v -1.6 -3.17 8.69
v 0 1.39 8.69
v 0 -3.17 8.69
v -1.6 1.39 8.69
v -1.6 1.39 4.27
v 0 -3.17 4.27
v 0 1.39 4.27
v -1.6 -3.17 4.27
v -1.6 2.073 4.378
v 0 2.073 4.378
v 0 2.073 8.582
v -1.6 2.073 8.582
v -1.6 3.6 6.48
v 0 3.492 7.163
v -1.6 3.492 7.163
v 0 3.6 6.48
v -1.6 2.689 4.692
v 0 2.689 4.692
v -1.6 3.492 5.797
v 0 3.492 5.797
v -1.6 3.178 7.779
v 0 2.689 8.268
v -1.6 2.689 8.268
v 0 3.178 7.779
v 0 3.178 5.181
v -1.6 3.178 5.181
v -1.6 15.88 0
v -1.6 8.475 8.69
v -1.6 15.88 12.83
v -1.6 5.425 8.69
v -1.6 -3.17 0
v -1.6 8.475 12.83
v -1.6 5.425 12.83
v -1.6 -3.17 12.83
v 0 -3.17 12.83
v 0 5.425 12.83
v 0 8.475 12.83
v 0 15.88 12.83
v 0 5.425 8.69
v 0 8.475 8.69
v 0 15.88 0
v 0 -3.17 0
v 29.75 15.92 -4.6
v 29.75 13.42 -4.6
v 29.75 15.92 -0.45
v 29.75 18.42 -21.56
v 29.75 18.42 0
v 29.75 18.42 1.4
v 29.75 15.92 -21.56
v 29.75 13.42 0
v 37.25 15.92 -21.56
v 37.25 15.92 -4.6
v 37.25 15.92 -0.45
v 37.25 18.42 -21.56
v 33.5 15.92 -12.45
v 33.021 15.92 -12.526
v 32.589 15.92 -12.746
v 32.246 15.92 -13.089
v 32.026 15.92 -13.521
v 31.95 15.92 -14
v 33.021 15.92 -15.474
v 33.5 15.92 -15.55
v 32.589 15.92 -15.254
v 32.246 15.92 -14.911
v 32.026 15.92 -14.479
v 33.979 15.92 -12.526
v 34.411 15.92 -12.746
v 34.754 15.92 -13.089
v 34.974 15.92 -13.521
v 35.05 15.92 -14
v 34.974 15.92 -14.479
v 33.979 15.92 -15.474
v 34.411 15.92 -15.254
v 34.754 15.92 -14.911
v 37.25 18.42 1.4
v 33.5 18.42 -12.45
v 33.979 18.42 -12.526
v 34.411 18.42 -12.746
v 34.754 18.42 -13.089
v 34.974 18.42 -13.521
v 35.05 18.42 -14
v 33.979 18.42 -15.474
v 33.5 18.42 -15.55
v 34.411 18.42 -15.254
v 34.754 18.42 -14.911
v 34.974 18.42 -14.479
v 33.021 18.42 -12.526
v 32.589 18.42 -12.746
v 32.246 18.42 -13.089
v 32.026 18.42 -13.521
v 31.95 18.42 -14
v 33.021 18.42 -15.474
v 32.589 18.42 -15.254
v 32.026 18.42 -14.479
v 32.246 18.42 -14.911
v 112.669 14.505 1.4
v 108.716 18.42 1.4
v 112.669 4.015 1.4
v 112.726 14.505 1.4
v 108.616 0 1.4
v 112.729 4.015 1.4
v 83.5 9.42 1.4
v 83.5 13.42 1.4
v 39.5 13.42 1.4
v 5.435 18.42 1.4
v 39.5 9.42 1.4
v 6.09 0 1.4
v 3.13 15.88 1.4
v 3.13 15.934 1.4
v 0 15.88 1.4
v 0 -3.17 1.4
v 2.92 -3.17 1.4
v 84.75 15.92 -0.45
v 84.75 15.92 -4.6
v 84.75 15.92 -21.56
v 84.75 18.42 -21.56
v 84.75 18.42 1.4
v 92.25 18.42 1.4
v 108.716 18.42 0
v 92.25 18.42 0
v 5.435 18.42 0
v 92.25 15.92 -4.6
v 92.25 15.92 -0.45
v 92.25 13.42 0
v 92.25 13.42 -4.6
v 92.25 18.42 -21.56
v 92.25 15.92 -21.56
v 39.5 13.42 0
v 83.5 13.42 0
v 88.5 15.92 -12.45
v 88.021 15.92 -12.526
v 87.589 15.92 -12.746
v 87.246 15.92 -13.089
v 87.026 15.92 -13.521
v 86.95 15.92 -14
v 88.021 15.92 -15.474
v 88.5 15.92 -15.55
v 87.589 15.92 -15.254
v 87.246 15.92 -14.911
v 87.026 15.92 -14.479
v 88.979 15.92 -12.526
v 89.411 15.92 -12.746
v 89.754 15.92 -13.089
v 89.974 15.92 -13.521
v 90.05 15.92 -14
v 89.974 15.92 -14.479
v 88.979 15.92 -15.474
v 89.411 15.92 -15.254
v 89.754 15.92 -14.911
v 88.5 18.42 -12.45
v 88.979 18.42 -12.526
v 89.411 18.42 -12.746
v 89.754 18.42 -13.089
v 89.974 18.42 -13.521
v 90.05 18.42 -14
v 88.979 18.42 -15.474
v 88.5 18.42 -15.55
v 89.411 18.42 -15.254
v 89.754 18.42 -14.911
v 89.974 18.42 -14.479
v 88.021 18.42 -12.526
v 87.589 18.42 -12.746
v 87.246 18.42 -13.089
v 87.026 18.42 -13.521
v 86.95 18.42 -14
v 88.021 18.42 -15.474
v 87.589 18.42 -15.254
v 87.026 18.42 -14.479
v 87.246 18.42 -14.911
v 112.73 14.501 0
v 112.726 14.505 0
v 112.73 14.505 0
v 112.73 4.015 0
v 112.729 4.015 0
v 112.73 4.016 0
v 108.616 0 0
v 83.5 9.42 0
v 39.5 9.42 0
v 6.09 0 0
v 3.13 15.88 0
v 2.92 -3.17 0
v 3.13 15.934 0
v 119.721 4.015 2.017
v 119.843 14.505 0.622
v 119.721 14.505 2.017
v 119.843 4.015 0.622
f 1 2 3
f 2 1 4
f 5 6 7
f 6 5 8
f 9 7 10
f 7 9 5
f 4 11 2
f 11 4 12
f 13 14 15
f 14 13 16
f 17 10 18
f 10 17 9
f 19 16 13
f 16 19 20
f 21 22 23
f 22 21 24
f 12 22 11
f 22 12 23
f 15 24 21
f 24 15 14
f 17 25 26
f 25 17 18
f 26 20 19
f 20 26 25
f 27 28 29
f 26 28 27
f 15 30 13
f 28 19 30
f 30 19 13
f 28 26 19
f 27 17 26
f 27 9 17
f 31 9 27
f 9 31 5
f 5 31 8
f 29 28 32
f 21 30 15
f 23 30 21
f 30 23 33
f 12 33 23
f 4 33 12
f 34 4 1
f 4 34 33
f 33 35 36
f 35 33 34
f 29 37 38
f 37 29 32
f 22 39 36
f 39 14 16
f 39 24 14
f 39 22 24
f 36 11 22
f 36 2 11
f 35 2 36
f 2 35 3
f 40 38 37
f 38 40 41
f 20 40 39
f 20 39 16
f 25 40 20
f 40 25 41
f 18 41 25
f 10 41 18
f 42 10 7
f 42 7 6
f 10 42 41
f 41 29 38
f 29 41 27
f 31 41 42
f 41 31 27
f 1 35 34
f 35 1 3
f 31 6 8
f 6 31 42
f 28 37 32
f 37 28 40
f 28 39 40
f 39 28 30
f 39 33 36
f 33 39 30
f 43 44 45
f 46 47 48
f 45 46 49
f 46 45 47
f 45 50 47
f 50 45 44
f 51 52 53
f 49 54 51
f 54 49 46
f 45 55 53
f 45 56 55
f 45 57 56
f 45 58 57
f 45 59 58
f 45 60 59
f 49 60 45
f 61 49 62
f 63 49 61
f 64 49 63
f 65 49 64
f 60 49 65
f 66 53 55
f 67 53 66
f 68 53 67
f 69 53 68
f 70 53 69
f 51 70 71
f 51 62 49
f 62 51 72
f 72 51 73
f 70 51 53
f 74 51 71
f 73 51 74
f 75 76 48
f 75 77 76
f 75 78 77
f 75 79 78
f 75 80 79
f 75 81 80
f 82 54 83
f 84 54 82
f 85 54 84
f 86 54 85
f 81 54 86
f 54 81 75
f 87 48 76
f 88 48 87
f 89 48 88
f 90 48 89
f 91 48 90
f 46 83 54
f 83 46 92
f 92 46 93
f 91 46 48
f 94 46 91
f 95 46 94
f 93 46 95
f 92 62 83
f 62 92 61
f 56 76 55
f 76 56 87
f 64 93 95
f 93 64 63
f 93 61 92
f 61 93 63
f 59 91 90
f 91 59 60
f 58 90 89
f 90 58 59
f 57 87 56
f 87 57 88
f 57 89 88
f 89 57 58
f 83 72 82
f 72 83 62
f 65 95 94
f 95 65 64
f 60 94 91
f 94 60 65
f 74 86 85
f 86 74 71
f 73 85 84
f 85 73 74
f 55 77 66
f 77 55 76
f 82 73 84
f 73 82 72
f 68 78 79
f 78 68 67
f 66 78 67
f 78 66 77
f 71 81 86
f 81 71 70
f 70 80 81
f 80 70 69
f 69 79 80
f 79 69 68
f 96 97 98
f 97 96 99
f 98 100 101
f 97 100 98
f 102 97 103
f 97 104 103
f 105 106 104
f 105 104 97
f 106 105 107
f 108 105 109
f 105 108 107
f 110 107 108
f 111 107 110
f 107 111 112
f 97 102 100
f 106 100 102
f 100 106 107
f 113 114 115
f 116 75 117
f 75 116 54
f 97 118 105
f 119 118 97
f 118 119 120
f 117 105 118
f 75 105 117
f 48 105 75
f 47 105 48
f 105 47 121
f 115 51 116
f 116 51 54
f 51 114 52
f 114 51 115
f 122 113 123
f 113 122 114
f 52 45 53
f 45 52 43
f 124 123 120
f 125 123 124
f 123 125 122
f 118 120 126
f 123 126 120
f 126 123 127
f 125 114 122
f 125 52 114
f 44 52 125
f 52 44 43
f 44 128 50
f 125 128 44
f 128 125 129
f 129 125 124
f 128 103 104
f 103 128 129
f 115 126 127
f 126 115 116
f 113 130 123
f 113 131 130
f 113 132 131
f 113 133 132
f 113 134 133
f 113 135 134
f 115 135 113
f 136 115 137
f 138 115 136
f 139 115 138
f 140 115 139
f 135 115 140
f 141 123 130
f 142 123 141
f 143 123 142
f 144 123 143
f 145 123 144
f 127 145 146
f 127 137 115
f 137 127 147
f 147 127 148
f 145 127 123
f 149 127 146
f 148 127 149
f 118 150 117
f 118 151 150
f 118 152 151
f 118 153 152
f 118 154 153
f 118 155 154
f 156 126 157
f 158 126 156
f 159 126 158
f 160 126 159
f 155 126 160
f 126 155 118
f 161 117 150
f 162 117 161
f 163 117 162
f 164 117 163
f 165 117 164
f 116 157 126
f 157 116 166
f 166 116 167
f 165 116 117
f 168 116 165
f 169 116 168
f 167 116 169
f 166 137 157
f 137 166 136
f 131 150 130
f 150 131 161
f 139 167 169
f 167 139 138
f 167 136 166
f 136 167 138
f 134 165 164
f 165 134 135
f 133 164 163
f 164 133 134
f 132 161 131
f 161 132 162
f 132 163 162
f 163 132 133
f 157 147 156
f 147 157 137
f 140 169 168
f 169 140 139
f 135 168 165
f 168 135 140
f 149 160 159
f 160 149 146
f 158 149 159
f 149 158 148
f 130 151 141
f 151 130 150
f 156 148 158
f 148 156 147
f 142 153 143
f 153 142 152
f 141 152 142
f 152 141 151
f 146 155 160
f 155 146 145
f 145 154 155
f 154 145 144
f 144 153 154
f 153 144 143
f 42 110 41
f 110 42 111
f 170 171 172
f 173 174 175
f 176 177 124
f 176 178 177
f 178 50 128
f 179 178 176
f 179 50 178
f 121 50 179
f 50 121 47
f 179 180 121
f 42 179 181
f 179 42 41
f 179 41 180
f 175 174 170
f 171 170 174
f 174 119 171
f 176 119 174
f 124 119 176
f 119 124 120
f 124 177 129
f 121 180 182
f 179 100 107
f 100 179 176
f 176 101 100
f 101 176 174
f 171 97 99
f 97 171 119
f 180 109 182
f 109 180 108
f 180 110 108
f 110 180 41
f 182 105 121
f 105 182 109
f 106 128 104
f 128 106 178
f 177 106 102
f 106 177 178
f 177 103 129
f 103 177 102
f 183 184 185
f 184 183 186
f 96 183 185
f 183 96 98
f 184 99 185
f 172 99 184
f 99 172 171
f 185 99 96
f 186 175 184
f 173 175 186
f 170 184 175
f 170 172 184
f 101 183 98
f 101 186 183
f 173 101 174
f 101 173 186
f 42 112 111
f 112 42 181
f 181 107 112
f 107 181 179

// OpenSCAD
resolution=32; // $fn
low_profile=0; // [0:false, 1:true]
bracket_thickness = 1.4; // base bracket depth

angled_bottom_tab = 1; // [0:false, 1:true]
decorative_hole=0; // [0:false, 1:true]
isa_slot=1; // [0:false, 1:true]
pcb_thickness=1.6;
top_tab_thickness = 1.6;
/* [Screw mount tabs] */

first_screw_tab_enabled = 1; // [0:false, 1:true]
second_screw_tab_enabled = 1; // [0:false, 1:true]
screw_mounts_on_bottom_of_pcb = 0; // [0:false, 1:true]
screw_mount_width = 7.5;
screw_mount_depth = 2.5;
screw_mount_hole_r = 1.55; // m3 bolt
screw_mount_thread_distance_base = 14;
screw_mount_inset_r = 2.9; // m3 bolt head
screw_mount_inset_depth = 0;
screw_mount_caulking = 0.5;

first_mount_x = 33.5;
mount_hole_distance = 55;
// If on top of the PCB, it is recommended to have this be at least the thickness of the PCB
screw_mount_y = 0;
second_mount_x = first_mount_x + mount_hole_distance;

/* [Round Holes] */
hole_1_enabled = 0; // [0:false, 1:true]
// X is offset from the first screw hole (i.e. the screw hole closest to the case mount cutout)
hole_1_x = 11.01;
// Y is offset from top of pcb
hole_1_y = 6.5;
hole_1_d = 9.5;

hole_2_enabled = 0; // [0:false, 1:true]
hole_2_x = 24.34;
hole_2_y = 6.5;
hole_2_d = 9.5;

hole_3_enabled = 0; // [0:false, 1:true]
hole_3_x = 63.41;
hole_3_y = 7;
hole_3_d = 6;

hole_4_enabled = 0; // [0:false, 1:true]
hole_4_x = 76.12;
hole_4_y = 7;
hole_4_d = 6;

hole_5_enabled = 0; // [0:false, 1:true]
hole_5_x = 37.69;
hole_5_y = 6.5;
hole_5_d = 9.5;

hole_6_enabled = 0; // [0:false, 1:true]
hole_6_x = 51.04;
hole_6_y = 6.5;
hole_6_d = 9.5;

/* [Rectangular Holes] */
// hole is at center of x,y positions
rectangular_hole_1_enabled = 1; // [0:false, 1:true]
// X is offset from the first screw hole (i.e. the screw hole closest to the case mount cutout)
rectangular_hole_1_x = 11.00;
// Y is offset from top of pcb
rectangular_hole_1_y = 6.5;
rectangular_hole_1_w = 5;
rectangular_hole_1_h = 10.5;

rectangular_hole_2_enabled = 1; // [0:false, 1:true]
rectangular_hole_2_x = 20;
rectangular_hole_2_y = 6.5;
rectangular_hole_2_w = 5;
rectangular_hole_2_h = 10.5;

rectangular_hole_3_enabled = 1; // [0:false, 1:true]
rectangular_hole_3_x = 29;
rectangular_hole_3_y = 6.5;
rectangular_hole_3_w = 5;
rectangular_hole_3_h = 10.5;

rectangular_hole_4_enabled = 1; // [0:false, 1:true]
rectangular_hole_4_x = 38;
rectangular_hole_4_y = 6.5;
rectangular_hole_4_w = 5;
rectangular_hole_4_h = 10.5;

rectangular_hole_5_enabled = 1; // [0:false, 1:true]
rectangular_hole_5_x = 45;
rectangular_hole_5_y = 6.5;
rectangular_hole_5_w = 5;
rectangular_hole_5_h = 10.5;

rectangular_hole_6_enabled = 0; // [0:false, 1:true]
rectangular_hole_6_x = 51.04;
rectangular_hole_6_y = 6.5;
rectangular_hole_6_w = 10.5;
rectangular_hole_6_h = 10.5;
// values taken from https://content.norcomp.net/rohspdfs/Connectors/PanelCutOuts/Panel_Cutout_D-Sub-Single.pdf

/* [D-Sub holes (Serial/VGA/Gameport)] */
// hole is at center of x,y positions
dsub_hole_1_type = 0; // [0:None, 15.46:DB-9(VGA/Serial), 23.79:DB-15(Gameport), 37.51:DB-25(Parallel)]
// X is offset from the first screw hole (i.e. the screw hole closest to the case mount cutout)
dsub_hole_1_x = 37.6;
// Y is offset from top of pcb
dsub_hole_1_y = 7.1;
dsub_hole_1_invert = 0; // [0:false, 1:true]

dsub_hole_2_type = 0; // [0:None, 15.46:DB-9(VGA/Serial), 23.79:DB-15(Gameport), 37.51:DB-25(Parallel)]
dsub_hole_2_x = 37.6;
dsub_hole_2_y = 7.1;
dsub_hole_2_invert = 0; // [0:false, 1:true]

dsub_hole_3_type = 0; // [0:None, 15.46:DB-9(VGA/Serial), 23.79:DB-15(Gameport), 37.51:DB-25(Parallel)]
dsub_hole_3_x = 37.6;
dsub_hole_3_y = 7.1;
dsub_hole_3_invert = 0; // [0:false, 1:true]

/* [DVI Hole]] */

dvi_hole_enabled = 0; // [0:false, 1:true]
dvi_hole_x = 37.6;
dvi_hole_y = 6;
dvi_hole_invert = 0; // [0:false, 1:true]


module __Customizer_Limit__ () {}  // This actually works
shown_by_customizer = 0; // [0:false, 1:true]

$fn = resolution;
bracket_width_length = low_profile? 71.46 : 112.78;
bracket_length = low_profile ? 79.20 : 120.02;
bracket_width = 18.42 + 0;
bottom_tab_width = 10.19 + 0;
bracket_bottom_tab_angle_length = (bracket_width - bottom_tab_width) / 2;

bracket_reinforce_width = bracket_width * .2;
bracket_reinforce_length = bracket_length * .78;

bracket_hole_dia = decorative_hole ? 4.75 : 0;
bracket_hole_distance = low_profile ? 66.19 : 107.01;

screw_mount_thread_distance = screw_mount_thread_distance_base + bracket_thickness;
screw_mount_length = screw_mount_thread_distance * 1.4 + bracket_thickness;

bracket_reinforce_depth = 0;
bracket_reinforce_offset_x = -6;
bracket_reinforce_offset_y = -5;


module prism(l, w, h){
     polyhedron(
         points=[[0,0,0], [l,0,0], [l,w,0], [0,w,0], [0,w,h], [l,w,h]],
         faces=[[0,1,2,3],[5,4,3,2],[0,4,5,1],[0,3,4],[5,2,1]]
         );
}

// top notch
notch_width = 2.54;
notch_length = 3.94-.86; // 3.94 - specified thickness of .86mm (vs actual thickness)

top_tab_width = 19.05; // had to fudge this
top_tab_length = 11.43;
top_tab_x = 0;
top_tab_y = 3.17; // 21.59 - 18.42
top_tab_screw_groove_dia = 4.42;
top_tab_screw_groove_fudge = -0.4; // kinda came out looking wrong so I'm faking it a bit here
top_tab_screw_groove_center = 3.18 + top_tab_screw_groove_fudge;
top_tab_screw_groove_distance = 6.35;
top_tab_screw_groove_translate_z = top_tab_length - top_tab_screw_groove_dia / 2 - top_tab_screw_groove_distance;

top_tab_useless_notch_length = 3.05;
top_tab_useless_notch_width = top_tab_screw_groove_distance - top_tab_screw_groove_dia / 2;
top_tab_useless_notch_z = top_tab_length - top_tab_useless_notch_width;
top_tab_useless_notch_y = top_tab_useless_notch_width / 2 + 8.05 - top_tab_useless_notch_length / 2;

translate([-top_tab_thickness + top_tab_x, -top_tab_y, 0]) difference() {
  cube([top_tab_thickness, top_tab_width, top_tab_length + bracket_thickness]);
  translate([-.5, -1, top_tab_screw_groove_translate_z + bracket_thickness]) {
    cube([top_tab_thickness + 1, top_tab_screw_groove_center * 2, top_tab_screw_groove_dia]);
    translate([1, top_tab_screw_groove_center * 2, top_tab_screw_groove_dia / 2])
      rotate([0, 90, 0])
      cylinder(r=top_tab_screw_groove_dia / 2, h=top_tab_thickness * 2, $fn=20, center=true);
  }
  translate([-.5, top_tab_useless_notch_y, top_tab_useless_notch_z + bracket_thickness]) {
    cube([top_tab_thickness + 1, top_tab_useless_notch_length, top_tab_useless_notch_width + 1]);
  }
}

// screw mounts
module screwmount(x) {
  
  translate([0, isa_slot? -screw_mount_y - screw_mount_depth : -bracket_width + screw_mount_y, 0]) // easier to be explicit here than factor it in the below statement
  translate([x - screw_mount_width / 2, bracket_width, -screw_mount_length + bracket_thickness])
    // cut out the threads
    difference() {
      union() {
        cube([screw_mount_width, screw_mount_depth, screw_mount_length]);
        //top caulking
        if ((isa_slot && bracket_width-screw_mount_y +screw_mount_caulking < bracket_width) || (!isa_slot &&  screw_mount_y + screw_mount_depth+ screw_mount_caulking < bracket_width)){
        difference(){
        translate([screw_mount_width, screw_mount_depth-.05, screw_mount_length-bracket_thickness-screw_mount_caulking +.05])
          rotate([90,0,180])
          prism(screw_mount_width,screw_mount_caulking+.05,screw_mount_caulking+.05);
        }
        }
        //bottom caulking
        if ((isa_slot && bracket_width-screw_mount_y -screw_mount_depth -screw_mount_caulking > 0) || (!isa_slot && screw_mount_y - screw_mount_caulking > 0)){
        translate([0, 0, screw_mount_length-bracket_thickness-screw_mount_caulking +.05])
          rotate([90,0,0])
          prism(screw_mount_width,screw_mount_caulking+.05,screw_mount_caulking+.05);
        }        
      }
       translate([screw_mount_width / 2, -2, screw_mount_length - screw_mount_thread_distance])
         rotate([0, 90, 90]) cylinder(r=screw_mount_hole_r, h=10, $fn=20);
      //inset
      translate([screw_mount_width / 2, ((isa_slot && screw_mounts_on_bottom_of_pcb) || (!isa_slot && !screw_mounts_on_bottom_of_pcb))?(screw_mount_depth - screw_mount_inset_depth + 0.01):(-0.01),
        screw_mount_length - screw_mount_thread_distance])
          rotate([0, 90, 90])
          cylinder(r=screw_mount_inset_r, h=screw_mount_inset_depth, $fn=20);
    }
    
///hack
translate([first_mount_x+ screw_mount_width / 2, bracket_width-screw_mount_depth, -screw_mount_length + bracket_thickness])
     cube([second_mount_x-first_mount_x-screw_mount_width , screw_mount_depth, screw_mount_length]);
    
translate([first_mount_x- screw_mount_width / 2, bracket_width-2*screw_mount_depth, -6 + bracket_thickness])
     cube([second_mount_x-first_mount_x+screw_mount_width , screw_mount_depth, 6]);
}

if (first_screw_tab_enabled){
  screwmount(first_mount_x);  
}
if (second_screw_tab_enabled) {
  screwmount(second_mount_x);
}

// bottom notch
shiftover_width = top_tab_y;
shiftover_length = 2.92;


// build up the shiftover
translate([0, -shiftover_width, 0]) cube([shiftover_length, shiftover_width + .1, bracket_thickness]);
translate([
  shiftover_length,
  -shiftover_width,
  bracket_thickness])
  rotate([0, 90, 0])  
  prism(bracket_thickness, shiftover_width, shiftover_width);

module translate_hole(hole_x,hole_y){
  y_offset_b = screw_mounts_on_bottom_of_pcb ? pcb_thickness + screw_mount_depth : 0;
  y_offset = !isa_slot ? 
    hole_y + screw_mount_y + y_offset_b
    : bracket_width - (hole_y + screw_mount_y + y_offset_b);
  translate([first_mount_x+ hole_x, y_offset, -bracket_thickness])
    children();
}
module round_hole(hole_x,hole_y,hole_d){
  translate_hole(hole_x,hole_y)
    cylinder(10,hole_d/2,hole_d/2);
}
module rectangular_hole(hole_x,hole_y,hole_w,hole_h){
  translate_hole(hole_x,hole_y)
    cube([10, hole_w, hole_h], center=true);
}

module dsub_hole(hole_x,hole_y,c_sz, invert = false){
  translate_hole(hole_x,hole_y)
    dsub_cutout(c_sz, invert);
}
module dsub_cutout(c_sz, invert=false){
  $fn=64;
  rotate([0,0,90]){
    top_x_coord = !invert ? c_sz/2 : (c_sz-2)/2;
    bottom_x_coord = !invert ? (c_sz-2)/2 : c_sz/2;
    hole_coord = (c_sz+9.53)/2;
    y_distance = 5.66;
    y_coord = y_distance/2;
    translate([0,hole_coord,0])
        cylinder(r=1.55,h=10);
    translate([0,-hole_coord,0])
        cylinder(r=1.55,h=10);
    hull(){
      translate([y_coord,-top_x_coord,0]){
      cylinder(r=2.51,h=10);
      }
      translate([y_coord,top_x_coord,0]){
      cylinder(r=2.51,h=10);
      }
      translate([-y_coord,-bottom_x_coord,0]){
      cylinder(r=2.51,h=10);
      }
      translate([-y_coord,bottom_x_coord,0]){
      cylinder(r=2.51,h=10);
      }
    }
  }
}
module dvi_hole(hole_x,hole_y, invert = false){
  translate_hole(hole_x,hole_y)
    dvi_cutout(invert);
}
module dvi_cutout(invert=false){
  $fn=64;
  rotate([0,0,90]){
    a_sz = 26.1;
    top_r_sz = 1.2;
    bottom_r_sz = 3;
    c_sz = a_sz - (top_r_sz *2);
    e_sz = c_sz - ((bottom_r_sz - top_r_sz) * 2);
    hole_coord = 32.5 /2;
    y_distance = 9.6 - (top_r_sz+ bottom_r_sz);

    top_x_coord = !invert ? c_sz/2 : e_sz/2;
    bottom_x_coord = !invert ? e_sz/2 : c_sz/2;
    top_r = !invert ? top_r_sz : bottom_r_sz;
    bottom_r = !invert ? bottom_r_sz: top_r_sz ;
    
    y_coord = y_distance/2;

    translate([0,hole_coord,0])
        cylinder(r=1.6,h=10);
    translate([0,-hole_coord,0])
        cylinder(r=1.6,h=10);
    hull(){
      translate([y_coord,-top_x_coord,0]){
      cylinder(r=top_r,h=10);
      }
      translate([y_coord,top_x_coord,0]){
      cylinder(r=top_r,h=10);
      }
      translate([-y_coord,-bottom_x_coord,0]){
      cylinder(r=bottom_r,h=10);
      }
      translate([-y_coord,bottom_x_coord,0]){
      cylinder(r=bottom_r,h=10);
      }
    }
  }
}
// Main bracket part
difference() {
  // the base bracket
  cube([bracket_length, bracket_width, bracket_thickness]);

  // carve out the angles
  translate([
    bracket_width_length,
    bracket_bottom_tab_angle_length - .05,
    2])
    rotate([0, 90, 0])
    rotate([180, 0, 0])  
    prism(bracket_bottom_tab_angle_length, bracket_bottom_tab_angle_length, bracket_bottom_tab_angle_length + 0.1);
  // other side
  translate([
    bracket_width_length + 0.1,
    bracket_bottom_tab_angle_length + bottom_tab_width + .05,
    -2])
    rotate([0, 90, 0])
    rotate([180, 0, 180])  
    prism(bracket_bottom_tab_angle_length, bracket_bottom_tab_angle_length, bracket_bottom_tab_angle_length + 0.1);  
  
  // ornamental hole
  translate([bracket_hole_distance, bracket_width / 2, -1.5])
    cylinder(r=bracket_hole_dia / 2, h=3, $fn=20);

  // notch out the shiftover
  translate([-0.95, bracket_width - notch_width, -1])
    cube([notch_length + 1, notch_width + .1, bracket_thickness + 2]);
  translate([
    notch_length,
    bracket_width - notch_width,
    2])
    rotate([0, 90, 0])  
    prism(notch_width, notch_width + .2, notch_width);
  // shape the tab at the bottom
  if (angled_bottom_tab){
    translate([bracket_width_length - 0.05, -.05, -.5])
      cube([bracket_length - bracket_width_length + 0.1, bottom_tab_width+ bracket_bottom_tab_angle_length * 2 + .1, bracket_thickness + 1.05]);
  } else {
    translate([bracket_width_length - 0.05, -.05, -.5])
      cube([bracket_length - bracket_width_length + 0.1, bracket_bottom_tab_angle_length + .1, bracket_thickness + 1.05]);
    translate([bracket_width_length - 0.05, bracket_bottom_tab_angle_length + bottom_tab_width,-.5])
      cube([bracket_length - bracket_width_length + 0.1, bracket_bottom_tab_angle_length + 0.1, bracket_thickness + 1]);

  }
  
  y_offset_b = screw_mounts_on_bottom_of_pcb ? pcb_thickness + screw_mount_depth : 0;
  // holes

  //round holes
  if (hole_1_enabled){
    round_hole(hole_1_x,hole_1_y,hole_1_d);
  }
  if (hole_2_enabled){
    round_hole(hole_2_x,hole_2_y,hole_2_d);
  }
  if (hole_3_enabled){
    round_hole(hole_3_x,hole_3_y,hole_3_d);
  }
  if (hole_4_enabled){
    round_hole(hole_4_x,hole_4_y,hole_4_d);
  }
  if (hole_5_enabled){
    round_hole(hole_5_x,hole_5_y,hole_5_d);
  }
  if (hole_6_enabled){
    round_hole(hole_6_x,hole_6_y,hole_6_d);
  }
  //rectangular holes
  if (rectangular_hole_1_enabled){
    rectangular_hole(rectangular_hole_1_x,rectangular_hole_1_y,rectangular_hole_1_w, rectangular_hole_1_h);
  }
  if (rectangular_hole_2_enabled){
    rectangular_hole(rectangular_hole_2_x,rectangular_hole_2_y,rectangular_hole_2_w, rectangular_hole_2_h);
  }
  if (rectangular_hole_3_enabled){
    rectangular_hole(rectangular_hole_3_x,rectangular_hole_3_y,rectangular_hole_3_w, rectangular_hole_3_h);
  }
  if (rectangular_hole_4_enabled){
    rectangular_hole(rectangular_hole_4_x,rectangular_hole_4_y,rectangular_hole_4_w, rectangular_hole_4_h);
  }
  if (rectangular_hole_5_enabled){
    rectangular_hole(rectangular_hole_5_x,rectangular_hole_5_y,rectangular_hole_5_w, rectangular_hole_5_h);
  }
  if (rectangular_hole_6_enabled){
    rectangular_hole(rectangular_hole_6_x,rectangular_hole_6_y,rectangular_hole_6_w, rectangular_hole_6_h);
  }
  if (dsub_hole_1_type > 0){
    dsub_hole(dsub_hole_1_x, dsub_hole_1_y, dsub_hole_1_type, dsub_hole_1_invert);
  }
  if (dsub_hole_2_type > 0){
    dsub_hole(dsub_hole_2_x, dsub_hole_2_y, dsub_hole_2_type, dsub_hole_2_invert);
  }
  if (dsub_hole_3_type > 0){
    dsub_hole(dsub_hole_3_x, dsub_hole_3_y, dsub_hole_3_type, dsub_hole_3_invert);
  }
  if (dvi_hole_enabled){
    dvi_hole(dvi_hole_x, dvi_hole_y, dvi_hole_invert);
  }
}

if (angled_bottom_tab){
  difference(){
    translate([bracket_width_length-0.05, bracket_bottom_tab_angle_length-0.1,0])
    rotate([0,-5,0])
    translate([-0.2,0,0])
    cube([bracket_length - bracket_width_length + 0.1, bottom_tab_width+.3, bracket_thickness ]);
    
    translate([bracket_width_length-0.3, bracket_bottom_tab_angle_length-0.2,-bracket_thickness])
    cube([bracket_length - bracket_width_length, bottom_tab_width+.4,1.4]);
  }
}

// reinforce bracket body

//translate([
//  bracket_length / 2 - bracket_reinforce_length / 2 + bracket_reinforce_offset_x,
//  (isa_slot? (bracket_width  - bracket_width / 2 - bracket_reinforce_width / 2 + bracket_reinforce_offset_y) : bracket_width+bracket_reinforce_offset_y),
//  -bracket_reinforce_depth])
//  cube([bracket_reinforce_length, bracket_reinforce_width, bracket_reinforce_depth]);
////if (cf_slot_enabled) {
////  translate([
////    bracket_length / 2 - bracket_reinforce_length / 2 + bracket_reinforce_offset_x,
////    bracket_width - bracket_reinforce_width,
////    -cf_reinforce_screwmount_depth])
////    cube([bracket_reinforce_length, bracket_reinforce_width, cf_reinforce_screwmount_depth]);
////}
//

//hack for cf
